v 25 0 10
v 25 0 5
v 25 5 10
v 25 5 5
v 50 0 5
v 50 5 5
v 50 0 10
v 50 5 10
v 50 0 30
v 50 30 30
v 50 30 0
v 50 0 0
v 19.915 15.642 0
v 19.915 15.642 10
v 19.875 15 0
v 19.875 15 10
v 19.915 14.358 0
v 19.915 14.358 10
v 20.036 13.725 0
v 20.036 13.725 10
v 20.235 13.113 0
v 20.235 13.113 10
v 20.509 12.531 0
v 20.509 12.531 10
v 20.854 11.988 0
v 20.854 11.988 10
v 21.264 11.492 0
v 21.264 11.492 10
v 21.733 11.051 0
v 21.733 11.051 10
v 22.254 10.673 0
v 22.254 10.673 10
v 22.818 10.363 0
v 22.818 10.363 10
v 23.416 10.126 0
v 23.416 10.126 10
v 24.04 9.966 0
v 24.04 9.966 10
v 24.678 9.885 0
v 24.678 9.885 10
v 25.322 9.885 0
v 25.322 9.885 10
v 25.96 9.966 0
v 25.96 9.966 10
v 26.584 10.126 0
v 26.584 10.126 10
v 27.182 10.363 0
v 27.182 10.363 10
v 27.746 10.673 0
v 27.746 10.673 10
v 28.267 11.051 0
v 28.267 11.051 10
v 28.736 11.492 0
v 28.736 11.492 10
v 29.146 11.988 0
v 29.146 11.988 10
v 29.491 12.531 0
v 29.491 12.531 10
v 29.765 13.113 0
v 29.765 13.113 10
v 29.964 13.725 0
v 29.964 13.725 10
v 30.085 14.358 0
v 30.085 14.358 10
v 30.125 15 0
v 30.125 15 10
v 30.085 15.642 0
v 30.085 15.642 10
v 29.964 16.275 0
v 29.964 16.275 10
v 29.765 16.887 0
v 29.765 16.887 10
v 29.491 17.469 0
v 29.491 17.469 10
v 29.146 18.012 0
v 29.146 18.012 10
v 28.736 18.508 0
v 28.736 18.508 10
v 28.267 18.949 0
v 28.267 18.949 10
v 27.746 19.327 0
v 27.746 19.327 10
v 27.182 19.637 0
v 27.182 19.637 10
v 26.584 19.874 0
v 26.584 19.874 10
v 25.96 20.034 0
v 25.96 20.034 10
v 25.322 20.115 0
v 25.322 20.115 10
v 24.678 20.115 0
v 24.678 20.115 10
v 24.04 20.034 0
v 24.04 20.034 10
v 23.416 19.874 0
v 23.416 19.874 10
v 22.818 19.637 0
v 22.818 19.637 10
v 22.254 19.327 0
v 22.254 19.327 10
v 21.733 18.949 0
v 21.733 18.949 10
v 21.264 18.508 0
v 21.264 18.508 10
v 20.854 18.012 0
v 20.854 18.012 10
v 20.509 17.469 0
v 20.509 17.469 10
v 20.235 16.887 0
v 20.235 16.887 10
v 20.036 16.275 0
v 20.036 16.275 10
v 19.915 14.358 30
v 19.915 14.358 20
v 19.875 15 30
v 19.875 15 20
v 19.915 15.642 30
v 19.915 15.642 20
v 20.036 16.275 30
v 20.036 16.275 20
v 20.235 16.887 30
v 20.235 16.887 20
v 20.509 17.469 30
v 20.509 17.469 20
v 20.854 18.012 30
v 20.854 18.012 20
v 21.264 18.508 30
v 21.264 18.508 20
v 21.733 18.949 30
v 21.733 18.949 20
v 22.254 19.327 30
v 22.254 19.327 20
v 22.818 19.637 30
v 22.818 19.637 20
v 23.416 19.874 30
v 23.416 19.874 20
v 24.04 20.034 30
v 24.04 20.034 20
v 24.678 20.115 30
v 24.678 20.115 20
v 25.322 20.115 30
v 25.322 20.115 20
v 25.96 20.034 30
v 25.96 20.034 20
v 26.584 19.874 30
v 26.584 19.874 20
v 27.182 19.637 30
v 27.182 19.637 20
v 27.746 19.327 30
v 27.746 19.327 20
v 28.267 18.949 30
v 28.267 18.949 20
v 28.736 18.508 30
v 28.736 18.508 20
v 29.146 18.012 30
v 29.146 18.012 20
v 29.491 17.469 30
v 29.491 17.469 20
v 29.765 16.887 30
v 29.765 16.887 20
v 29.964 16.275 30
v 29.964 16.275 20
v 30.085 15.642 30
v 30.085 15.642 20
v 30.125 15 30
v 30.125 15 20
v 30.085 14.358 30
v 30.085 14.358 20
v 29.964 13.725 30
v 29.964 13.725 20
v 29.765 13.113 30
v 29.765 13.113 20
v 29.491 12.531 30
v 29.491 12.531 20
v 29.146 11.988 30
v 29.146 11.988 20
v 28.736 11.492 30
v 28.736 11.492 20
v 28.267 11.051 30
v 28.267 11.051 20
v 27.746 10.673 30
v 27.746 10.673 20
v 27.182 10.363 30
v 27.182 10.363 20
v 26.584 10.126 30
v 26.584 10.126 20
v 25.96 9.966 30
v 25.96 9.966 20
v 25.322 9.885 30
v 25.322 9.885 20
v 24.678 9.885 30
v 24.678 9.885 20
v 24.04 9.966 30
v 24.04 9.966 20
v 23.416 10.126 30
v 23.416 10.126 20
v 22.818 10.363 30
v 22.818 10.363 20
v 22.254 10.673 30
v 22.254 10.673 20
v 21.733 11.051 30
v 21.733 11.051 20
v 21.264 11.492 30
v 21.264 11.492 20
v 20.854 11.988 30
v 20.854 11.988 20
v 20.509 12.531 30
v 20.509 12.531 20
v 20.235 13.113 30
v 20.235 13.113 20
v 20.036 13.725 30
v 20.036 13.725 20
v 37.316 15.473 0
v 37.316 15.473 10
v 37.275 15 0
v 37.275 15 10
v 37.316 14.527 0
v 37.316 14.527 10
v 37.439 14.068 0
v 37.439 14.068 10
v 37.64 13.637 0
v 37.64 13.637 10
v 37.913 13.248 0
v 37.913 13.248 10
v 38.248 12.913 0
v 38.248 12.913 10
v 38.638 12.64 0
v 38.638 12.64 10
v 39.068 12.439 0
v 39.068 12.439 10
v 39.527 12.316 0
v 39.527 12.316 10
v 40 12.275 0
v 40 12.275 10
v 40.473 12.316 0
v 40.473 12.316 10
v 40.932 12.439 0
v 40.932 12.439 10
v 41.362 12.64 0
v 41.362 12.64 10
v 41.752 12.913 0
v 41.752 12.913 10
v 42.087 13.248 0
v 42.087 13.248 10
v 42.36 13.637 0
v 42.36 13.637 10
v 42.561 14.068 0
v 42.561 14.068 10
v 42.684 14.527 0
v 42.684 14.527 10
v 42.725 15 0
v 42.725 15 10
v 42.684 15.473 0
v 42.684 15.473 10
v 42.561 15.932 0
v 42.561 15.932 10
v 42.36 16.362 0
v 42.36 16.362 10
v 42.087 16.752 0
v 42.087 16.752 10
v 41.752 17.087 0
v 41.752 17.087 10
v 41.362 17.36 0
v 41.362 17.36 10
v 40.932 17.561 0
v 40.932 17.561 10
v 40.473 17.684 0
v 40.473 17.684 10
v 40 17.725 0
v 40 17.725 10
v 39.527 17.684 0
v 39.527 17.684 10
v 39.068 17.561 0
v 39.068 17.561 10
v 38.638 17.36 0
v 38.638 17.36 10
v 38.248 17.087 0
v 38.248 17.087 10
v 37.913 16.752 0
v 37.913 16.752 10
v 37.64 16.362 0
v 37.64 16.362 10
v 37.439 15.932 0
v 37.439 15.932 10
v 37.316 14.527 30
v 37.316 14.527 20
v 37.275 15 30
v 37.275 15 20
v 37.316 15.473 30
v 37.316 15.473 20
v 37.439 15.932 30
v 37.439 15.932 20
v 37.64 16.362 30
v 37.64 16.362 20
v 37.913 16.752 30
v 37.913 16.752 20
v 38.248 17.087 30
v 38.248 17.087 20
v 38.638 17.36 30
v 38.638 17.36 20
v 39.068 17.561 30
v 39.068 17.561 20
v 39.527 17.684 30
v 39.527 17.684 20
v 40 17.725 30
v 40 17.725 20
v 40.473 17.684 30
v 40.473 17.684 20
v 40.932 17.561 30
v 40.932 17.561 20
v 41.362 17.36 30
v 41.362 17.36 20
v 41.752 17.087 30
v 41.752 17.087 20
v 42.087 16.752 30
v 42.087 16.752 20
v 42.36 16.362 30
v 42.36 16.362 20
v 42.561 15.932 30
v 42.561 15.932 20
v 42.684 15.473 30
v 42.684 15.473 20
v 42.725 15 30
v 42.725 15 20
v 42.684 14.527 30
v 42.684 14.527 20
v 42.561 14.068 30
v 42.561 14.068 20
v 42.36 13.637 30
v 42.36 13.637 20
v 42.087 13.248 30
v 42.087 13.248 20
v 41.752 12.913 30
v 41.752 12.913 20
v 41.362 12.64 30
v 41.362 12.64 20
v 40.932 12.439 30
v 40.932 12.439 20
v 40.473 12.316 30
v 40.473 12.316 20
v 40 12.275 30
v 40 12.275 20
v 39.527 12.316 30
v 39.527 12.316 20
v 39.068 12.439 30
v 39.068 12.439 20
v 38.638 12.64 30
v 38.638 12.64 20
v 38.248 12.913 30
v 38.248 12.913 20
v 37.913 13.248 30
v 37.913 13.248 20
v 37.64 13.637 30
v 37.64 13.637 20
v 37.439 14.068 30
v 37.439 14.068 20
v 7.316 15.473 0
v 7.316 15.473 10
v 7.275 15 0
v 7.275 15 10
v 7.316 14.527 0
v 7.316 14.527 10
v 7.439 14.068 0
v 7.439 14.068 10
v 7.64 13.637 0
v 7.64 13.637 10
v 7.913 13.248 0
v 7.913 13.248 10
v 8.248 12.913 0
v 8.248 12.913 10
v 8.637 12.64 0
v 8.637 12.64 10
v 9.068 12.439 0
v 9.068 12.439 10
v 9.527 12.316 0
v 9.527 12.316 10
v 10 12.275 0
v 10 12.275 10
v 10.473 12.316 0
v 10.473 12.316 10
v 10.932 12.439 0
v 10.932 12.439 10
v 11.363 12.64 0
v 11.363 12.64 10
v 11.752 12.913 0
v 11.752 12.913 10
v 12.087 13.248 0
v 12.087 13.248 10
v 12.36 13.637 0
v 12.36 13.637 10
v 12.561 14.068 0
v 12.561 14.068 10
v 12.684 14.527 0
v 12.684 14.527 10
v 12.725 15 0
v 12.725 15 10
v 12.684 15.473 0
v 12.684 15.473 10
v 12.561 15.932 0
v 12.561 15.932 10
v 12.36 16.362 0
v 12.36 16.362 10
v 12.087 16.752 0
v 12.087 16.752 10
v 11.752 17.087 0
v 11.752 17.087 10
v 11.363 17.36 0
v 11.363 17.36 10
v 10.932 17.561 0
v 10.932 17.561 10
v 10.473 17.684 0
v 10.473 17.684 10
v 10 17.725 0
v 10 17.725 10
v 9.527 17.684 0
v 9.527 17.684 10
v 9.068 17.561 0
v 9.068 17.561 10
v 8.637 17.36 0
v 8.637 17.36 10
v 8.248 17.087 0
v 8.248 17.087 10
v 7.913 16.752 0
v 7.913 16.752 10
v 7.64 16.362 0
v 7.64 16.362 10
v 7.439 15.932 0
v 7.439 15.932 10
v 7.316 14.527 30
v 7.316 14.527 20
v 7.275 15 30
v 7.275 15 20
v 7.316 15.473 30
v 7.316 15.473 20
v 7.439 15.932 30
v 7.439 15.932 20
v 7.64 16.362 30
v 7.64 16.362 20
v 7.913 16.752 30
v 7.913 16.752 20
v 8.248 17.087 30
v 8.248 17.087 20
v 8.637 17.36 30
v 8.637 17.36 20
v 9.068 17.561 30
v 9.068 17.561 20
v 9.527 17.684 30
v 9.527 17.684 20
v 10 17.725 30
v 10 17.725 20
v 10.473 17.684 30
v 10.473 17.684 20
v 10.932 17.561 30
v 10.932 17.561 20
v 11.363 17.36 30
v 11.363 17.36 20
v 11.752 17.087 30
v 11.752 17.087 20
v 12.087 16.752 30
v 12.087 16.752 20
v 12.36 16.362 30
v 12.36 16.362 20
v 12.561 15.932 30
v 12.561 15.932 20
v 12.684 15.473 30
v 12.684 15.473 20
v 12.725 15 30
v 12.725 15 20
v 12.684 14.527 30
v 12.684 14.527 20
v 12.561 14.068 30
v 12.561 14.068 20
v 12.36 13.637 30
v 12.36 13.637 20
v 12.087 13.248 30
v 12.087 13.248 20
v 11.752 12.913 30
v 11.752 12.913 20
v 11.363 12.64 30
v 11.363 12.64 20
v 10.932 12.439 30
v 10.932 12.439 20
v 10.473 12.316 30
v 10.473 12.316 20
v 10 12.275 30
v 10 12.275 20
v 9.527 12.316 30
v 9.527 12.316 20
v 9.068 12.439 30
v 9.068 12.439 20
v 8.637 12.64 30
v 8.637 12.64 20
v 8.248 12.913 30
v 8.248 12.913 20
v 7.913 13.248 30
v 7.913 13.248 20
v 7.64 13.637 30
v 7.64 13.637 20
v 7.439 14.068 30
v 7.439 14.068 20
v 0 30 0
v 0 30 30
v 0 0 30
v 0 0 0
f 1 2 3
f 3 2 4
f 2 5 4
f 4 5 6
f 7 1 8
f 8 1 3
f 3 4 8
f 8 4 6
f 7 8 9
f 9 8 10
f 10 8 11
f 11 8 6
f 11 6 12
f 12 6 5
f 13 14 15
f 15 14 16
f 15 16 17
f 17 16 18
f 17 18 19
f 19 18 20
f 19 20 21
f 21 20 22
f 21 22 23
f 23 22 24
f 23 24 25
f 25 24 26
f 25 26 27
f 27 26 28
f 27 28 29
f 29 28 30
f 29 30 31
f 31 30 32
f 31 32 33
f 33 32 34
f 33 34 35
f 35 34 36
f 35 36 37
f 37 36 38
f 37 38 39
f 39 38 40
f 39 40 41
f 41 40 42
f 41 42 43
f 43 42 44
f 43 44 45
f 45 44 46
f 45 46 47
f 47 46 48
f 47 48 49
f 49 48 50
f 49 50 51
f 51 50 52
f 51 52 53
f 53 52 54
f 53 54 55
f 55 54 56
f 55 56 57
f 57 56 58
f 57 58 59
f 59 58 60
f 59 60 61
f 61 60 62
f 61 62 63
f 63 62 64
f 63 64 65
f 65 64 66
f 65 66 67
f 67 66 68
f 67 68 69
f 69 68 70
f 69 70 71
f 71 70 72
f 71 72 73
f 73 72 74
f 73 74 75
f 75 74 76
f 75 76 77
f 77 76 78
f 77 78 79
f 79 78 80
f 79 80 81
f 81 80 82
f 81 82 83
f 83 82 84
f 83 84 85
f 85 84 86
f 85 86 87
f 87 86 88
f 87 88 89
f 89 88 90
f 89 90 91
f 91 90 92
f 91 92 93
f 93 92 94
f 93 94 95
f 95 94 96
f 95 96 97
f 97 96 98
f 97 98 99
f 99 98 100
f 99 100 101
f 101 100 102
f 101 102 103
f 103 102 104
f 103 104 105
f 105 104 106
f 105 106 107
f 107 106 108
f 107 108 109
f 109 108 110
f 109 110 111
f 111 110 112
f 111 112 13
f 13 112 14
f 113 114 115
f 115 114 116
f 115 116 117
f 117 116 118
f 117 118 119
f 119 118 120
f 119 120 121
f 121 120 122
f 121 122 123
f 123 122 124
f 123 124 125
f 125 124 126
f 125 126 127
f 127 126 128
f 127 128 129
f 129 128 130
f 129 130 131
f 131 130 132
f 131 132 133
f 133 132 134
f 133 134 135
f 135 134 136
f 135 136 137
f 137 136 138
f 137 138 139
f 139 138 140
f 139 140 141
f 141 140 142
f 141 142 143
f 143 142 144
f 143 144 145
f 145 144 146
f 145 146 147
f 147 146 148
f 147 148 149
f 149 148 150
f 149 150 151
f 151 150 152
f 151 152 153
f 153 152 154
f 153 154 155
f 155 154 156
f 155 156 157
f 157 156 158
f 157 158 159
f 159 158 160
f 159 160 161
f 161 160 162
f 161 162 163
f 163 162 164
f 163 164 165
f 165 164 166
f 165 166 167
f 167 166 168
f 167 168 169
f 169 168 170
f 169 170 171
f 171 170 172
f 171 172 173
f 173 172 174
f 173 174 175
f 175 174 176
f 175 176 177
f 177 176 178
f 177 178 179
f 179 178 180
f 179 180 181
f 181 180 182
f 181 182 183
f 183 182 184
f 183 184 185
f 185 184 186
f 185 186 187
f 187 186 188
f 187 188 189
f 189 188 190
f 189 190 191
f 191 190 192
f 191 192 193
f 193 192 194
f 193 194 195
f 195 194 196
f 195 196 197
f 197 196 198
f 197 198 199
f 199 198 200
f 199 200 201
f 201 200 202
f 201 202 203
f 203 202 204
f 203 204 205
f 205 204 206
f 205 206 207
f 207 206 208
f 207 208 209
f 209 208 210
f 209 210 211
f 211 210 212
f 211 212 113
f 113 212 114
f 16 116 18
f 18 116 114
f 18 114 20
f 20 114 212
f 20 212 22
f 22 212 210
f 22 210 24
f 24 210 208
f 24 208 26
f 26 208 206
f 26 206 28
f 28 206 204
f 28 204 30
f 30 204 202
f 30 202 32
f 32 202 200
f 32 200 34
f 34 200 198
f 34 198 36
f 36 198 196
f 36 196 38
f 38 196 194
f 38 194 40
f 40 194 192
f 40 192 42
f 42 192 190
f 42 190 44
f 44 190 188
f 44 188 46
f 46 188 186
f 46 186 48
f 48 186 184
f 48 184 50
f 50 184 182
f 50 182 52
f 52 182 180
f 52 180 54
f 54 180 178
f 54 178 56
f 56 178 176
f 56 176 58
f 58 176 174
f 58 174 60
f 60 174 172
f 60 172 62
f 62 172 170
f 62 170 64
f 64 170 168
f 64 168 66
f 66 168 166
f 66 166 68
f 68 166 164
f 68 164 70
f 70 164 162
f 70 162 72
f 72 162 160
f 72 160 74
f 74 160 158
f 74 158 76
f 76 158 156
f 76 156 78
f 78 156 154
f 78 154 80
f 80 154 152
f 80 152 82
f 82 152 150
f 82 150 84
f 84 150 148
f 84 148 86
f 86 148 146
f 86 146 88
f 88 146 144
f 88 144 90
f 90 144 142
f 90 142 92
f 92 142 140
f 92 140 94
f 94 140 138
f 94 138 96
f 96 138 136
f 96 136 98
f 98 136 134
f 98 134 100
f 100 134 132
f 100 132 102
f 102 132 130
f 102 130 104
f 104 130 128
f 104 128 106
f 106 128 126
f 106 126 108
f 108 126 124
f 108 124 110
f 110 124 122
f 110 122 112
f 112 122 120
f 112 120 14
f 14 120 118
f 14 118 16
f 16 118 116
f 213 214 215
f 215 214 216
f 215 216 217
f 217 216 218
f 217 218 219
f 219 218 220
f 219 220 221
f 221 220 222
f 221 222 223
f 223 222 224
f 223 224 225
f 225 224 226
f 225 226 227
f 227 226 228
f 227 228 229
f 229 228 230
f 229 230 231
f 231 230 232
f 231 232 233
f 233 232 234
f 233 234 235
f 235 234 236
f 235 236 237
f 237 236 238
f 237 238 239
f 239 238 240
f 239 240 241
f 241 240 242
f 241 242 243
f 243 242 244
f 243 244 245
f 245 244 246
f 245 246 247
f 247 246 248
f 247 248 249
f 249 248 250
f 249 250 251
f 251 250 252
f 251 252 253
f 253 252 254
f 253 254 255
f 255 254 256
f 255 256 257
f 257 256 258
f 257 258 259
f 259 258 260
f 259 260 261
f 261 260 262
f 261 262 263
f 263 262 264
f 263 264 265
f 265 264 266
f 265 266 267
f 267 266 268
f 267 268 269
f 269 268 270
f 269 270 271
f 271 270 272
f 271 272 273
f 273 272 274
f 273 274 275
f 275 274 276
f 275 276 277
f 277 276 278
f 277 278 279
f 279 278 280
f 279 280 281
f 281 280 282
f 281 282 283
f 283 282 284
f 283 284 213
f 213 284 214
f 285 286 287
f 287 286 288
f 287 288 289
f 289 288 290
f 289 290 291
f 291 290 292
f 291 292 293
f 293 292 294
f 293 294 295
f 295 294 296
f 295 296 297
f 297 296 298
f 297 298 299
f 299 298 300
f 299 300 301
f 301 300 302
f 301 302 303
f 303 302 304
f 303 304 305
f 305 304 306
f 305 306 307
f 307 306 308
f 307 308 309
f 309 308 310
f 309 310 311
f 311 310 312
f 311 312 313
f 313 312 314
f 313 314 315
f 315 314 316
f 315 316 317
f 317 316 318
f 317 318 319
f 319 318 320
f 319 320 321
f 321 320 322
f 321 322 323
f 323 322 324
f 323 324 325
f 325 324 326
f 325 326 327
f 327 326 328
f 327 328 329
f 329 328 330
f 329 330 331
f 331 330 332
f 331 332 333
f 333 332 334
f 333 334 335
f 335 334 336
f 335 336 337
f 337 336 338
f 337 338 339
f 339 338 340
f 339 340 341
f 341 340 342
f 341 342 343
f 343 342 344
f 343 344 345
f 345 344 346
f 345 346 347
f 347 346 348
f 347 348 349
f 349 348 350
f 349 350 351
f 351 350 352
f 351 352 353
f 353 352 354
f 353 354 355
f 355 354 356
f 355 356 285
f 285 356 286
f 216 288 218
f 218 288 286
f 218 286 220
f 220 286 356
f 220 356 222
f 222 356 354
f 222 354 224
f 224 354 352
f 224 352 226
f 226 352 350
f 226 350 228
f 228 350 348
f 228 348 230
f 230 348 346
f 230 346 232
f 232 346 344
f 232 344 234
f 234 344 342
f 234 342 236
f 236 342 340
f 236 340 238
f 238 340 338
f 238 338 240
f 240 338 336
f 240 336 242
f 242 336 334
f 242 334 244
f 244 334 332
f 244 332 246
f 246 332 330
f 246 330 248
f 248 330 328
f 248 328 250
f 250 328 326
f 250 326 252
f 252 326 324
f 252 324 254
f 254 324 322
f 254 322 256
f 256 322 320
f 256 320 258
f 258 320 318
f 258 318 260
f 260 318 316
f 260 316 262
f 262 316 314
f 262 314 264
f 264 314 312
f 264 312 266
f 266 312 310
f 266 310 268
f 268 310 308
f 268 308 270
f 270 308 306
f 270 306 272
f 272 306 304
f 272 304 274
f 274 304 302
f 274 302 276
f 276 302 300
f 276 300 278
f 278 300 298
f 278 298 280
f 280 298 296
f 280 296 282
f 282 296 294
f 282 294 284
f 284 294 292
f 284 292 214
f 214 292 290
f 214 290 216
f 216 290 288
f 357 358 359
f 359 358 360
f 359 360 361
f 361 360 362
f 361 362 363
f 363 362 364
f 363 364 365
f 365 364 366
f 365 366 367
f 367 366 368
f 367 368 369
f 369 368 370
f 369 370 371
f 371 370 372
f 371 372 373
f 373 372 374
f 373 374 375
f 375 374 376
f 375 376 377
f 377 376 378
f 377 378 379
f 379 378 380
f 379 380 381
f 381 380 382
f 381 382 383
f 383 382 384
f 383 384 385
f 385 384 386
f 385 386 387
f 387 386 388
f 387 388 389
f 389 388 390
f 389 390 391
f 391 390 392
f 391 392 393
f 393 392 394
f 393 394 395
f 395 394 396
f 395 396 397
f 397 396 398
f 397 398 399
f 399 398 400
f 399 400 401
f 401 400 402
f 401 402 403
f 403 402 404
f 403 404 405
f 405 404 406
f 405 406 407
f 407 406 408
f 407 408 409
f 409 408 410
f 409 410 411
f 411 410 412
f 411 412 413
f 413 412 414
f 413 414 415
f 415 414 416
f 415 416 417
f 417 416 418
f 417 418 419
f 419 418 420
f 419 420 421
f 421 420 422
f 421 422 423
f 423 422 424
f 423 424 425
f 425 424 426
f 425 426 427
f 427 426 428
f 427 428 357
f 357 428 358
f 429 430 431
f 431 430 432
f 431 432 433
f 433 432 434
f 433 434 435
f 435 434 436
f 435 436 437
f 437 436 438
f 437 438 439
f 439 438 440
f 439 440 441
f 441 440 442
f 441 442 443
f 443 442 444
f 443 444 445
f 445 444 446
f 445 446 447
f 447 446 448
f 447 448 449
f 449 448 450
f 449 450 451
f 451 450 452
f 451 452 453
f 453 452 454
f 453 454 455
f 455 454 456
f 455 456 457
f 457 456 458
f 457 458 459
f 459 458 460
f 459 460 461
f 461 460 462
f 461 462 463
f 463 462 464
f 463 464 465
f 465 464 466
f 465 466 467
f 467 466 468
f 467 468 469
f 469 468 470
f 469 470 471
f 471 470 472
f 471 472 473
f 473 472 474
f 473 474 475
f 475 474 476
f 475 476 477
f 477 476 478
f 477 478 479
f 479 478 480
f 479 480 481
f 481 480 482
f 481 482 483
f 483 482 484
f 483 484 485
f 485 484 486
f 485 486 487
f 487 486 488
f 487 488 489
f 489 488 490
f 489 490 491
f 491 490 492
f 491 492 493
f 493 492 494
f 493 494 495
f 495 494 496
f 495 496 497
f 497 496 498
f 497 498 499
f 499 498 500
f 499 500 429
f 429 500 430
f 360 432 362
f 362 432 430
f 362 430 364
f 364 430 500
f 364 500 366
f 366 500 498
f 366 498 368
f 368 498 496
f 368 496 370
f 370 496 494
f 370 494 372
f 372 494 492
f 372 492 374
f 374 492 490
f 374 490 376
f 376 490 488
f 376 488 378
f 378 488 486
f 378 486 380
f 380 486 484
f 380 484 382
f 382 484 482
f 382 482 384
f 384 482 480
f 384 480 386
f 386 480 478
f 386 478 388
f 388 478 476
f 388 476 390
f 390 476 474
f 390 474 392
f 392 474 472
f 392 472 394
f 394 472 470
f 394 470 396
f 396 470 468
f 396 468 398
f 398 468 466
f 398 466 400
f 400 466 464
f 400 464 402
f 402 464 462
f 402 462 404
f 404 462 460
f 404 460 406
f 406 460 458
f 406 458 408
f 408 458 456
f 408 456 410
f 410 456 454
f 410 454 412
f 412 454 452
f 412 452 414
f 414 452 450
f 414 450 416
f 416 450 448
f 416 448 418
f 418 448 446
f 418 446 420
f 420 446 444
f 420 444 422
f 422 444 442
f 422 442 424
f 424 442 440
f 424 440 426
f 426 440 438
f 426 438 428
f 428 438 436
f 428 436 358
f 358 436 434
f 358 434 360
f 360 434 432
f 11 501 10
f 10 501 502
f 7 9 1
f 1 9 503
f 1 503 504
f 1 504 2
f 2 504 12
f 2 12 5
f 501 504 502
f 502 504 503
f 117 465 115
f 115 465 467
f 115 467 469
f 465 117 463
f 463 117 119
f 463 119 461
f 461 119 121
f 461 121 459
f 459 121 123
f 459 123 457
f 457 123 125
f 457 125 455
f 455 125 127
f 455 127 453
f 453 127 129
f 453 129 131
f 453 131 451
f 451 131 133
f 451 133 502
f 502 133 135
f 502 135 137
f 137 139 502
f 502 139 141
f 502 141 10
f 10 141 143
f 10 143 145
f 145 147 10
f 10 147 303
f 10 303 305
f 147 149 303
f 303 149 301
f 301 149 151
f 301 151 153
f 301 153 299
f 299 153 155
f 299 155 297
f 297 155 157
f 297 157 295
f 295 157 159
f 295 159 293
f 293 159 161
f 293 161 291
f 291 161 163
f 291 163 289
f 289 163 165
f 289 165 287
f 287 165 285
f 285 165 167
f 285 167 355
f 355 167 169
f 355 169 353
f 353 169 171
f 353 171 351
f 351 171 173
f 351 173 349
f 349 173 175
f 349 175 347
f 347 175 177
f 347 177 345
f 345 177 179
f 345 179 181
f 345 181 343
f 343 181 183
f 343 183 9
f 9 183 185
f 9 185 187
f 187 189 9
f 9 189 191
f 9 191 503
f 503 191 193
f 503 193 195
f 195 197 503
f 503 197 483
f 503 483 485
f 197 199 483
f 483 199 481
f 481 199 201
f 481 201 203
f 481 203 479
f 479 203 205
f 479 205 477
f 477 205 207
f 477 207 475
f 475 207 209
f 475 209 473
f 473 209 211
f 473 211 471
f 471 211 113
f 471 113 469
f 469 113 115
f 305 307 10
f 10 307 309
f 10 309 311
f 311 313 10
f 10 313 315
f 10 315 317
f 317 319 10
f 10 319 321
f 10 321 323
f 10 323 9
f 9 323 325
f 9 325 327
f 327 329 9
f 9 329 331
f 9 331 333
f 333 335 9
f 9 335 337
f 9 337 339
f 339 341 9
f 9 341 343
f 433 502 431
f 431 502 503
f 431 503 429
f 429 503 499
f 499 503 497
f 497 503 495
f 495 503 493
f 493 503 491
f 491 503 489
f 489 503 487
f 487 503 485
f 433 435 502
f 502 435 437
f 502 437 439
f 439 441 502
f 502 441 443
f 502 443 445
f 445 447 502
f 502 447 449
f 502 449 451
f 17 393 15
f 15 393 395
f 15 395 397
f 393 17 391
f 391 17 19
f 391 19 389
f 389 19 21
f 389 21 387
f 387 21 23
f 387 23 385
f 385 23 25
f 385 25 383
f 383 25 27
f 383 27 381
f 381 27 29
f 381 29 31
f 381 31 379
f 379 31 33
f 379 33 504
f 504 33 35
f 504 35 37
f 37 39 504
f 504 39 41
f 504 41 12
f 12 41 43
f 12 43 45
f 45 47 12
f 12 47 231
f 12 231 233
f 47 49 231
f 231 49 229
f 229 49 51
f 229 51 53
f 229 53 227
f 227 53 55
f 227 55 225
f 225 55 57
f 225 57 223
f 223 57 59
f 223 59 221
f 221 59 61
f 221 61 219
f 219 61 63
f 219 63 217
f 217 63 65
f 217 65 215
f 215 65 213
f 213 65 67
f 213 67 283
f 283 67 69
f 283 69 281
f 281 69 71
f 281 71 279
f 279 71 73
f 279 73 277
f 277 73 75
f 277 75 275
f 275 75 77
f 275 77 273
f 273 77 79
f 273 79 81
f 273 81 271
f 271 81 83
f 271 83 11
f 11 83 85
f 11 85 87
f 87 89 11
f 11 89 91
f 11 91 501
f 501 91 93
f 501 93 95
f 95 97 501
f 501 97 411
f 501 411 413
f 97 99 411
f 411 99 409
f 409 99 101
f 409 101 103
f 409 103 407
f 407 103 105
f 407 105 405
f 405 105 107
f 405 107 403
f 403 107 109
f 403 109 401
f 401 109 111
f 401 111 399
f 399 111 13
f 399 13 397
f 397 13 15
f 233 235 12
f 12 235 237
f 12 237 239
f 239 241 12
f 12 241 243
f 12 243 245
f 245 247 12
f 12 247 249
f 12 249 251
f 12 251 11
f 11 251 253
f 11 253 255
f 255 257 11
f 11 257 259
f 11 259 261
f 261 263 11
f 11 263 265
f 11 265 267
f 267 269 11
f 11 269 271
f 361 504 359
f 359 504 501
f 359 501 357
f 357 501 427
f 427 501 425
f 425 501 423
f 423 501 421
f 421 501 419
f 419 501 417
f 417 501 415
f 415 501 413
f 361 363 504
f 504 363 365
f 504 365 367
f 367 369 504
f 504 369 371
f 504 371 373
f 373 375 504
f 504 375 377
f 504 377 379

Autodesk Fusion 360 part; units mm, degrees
sketch "Sketch1" plane through (0, 0, 0) normal (0, 0, 1) x (1, 0, 0)
  line L0 (0, 0) -> (50, 0)
  line L1 (50, 0) -> (50, 30)
  line L2 (50, 30) -> (0, 30)
  line L3 (0, 30) -> (0, 0)
  dimension "d1" = 50
  dimension "d2" = 30
extrude "Extrude1" add sketch "Sketch1" along normal blind 30
sketch "Sketch2" plane through (0, 0, 30) normal (0, 0, 1) x (1, 0, 0)
  line L0 (0, 30) -> (0, 0)
  line L1 (0, 0) -> (50, 0)
  line L2 (50, 0) -> (50, 30)
  line L3 (50, 30) -> (0, 30)
  line L4 (0, 30) -> (0, 15)
  line L5 (0, 15) -> (10, 15)
  line L6 (0, 15) -> (25, 15)
  line L7 (50, 15) -> (40, 15)
  circle A0 centre (10, 15) radius 2.725
  circle A1 centre (40, 15) radius 2.725
  circle A2 centre (25, 15) radius 5.125
  dimension "d5" = 10
  dimension "d6" = 25
  dimension "d7" = 10
  dimension "d8" = 5.45
  dimension "d9" = 5.45
  dimension "d10" = 10.25
extrude "Extrude2" cut sketch "Sketch2" against normal blind 30 contours A2 | L5 L6 A0 | L5 L6 A0 | A1
sketch "Sketch3" plane through (0, 0, 0) normal (0, -1, 0) x (1, 0, 0)
  line L0 (0, 0) -> (50, 0)
  line L1 (50, 0) -> (50, 30)
  line L2 (50, 30) -> (0, 30)
  line L3 (0, 30) -> (0, 0)
  line L4 (50, 0) -> (50, 5)
  line L5 (50, 5) -> (25, 5)
  line L6 (25, 5) -> (25, 10)
  line L7 (25, 10) -> (50, 10)
  line L8 (50, 10) -> (50, 5)
  dimension "d13" = 5
  dimension "d14" = 25
  dimension "d15" = 5
extrude "Extrude3" cut sketch "Sketch3" against normal blind 5 contours L1 L5 L6 L7 L8
